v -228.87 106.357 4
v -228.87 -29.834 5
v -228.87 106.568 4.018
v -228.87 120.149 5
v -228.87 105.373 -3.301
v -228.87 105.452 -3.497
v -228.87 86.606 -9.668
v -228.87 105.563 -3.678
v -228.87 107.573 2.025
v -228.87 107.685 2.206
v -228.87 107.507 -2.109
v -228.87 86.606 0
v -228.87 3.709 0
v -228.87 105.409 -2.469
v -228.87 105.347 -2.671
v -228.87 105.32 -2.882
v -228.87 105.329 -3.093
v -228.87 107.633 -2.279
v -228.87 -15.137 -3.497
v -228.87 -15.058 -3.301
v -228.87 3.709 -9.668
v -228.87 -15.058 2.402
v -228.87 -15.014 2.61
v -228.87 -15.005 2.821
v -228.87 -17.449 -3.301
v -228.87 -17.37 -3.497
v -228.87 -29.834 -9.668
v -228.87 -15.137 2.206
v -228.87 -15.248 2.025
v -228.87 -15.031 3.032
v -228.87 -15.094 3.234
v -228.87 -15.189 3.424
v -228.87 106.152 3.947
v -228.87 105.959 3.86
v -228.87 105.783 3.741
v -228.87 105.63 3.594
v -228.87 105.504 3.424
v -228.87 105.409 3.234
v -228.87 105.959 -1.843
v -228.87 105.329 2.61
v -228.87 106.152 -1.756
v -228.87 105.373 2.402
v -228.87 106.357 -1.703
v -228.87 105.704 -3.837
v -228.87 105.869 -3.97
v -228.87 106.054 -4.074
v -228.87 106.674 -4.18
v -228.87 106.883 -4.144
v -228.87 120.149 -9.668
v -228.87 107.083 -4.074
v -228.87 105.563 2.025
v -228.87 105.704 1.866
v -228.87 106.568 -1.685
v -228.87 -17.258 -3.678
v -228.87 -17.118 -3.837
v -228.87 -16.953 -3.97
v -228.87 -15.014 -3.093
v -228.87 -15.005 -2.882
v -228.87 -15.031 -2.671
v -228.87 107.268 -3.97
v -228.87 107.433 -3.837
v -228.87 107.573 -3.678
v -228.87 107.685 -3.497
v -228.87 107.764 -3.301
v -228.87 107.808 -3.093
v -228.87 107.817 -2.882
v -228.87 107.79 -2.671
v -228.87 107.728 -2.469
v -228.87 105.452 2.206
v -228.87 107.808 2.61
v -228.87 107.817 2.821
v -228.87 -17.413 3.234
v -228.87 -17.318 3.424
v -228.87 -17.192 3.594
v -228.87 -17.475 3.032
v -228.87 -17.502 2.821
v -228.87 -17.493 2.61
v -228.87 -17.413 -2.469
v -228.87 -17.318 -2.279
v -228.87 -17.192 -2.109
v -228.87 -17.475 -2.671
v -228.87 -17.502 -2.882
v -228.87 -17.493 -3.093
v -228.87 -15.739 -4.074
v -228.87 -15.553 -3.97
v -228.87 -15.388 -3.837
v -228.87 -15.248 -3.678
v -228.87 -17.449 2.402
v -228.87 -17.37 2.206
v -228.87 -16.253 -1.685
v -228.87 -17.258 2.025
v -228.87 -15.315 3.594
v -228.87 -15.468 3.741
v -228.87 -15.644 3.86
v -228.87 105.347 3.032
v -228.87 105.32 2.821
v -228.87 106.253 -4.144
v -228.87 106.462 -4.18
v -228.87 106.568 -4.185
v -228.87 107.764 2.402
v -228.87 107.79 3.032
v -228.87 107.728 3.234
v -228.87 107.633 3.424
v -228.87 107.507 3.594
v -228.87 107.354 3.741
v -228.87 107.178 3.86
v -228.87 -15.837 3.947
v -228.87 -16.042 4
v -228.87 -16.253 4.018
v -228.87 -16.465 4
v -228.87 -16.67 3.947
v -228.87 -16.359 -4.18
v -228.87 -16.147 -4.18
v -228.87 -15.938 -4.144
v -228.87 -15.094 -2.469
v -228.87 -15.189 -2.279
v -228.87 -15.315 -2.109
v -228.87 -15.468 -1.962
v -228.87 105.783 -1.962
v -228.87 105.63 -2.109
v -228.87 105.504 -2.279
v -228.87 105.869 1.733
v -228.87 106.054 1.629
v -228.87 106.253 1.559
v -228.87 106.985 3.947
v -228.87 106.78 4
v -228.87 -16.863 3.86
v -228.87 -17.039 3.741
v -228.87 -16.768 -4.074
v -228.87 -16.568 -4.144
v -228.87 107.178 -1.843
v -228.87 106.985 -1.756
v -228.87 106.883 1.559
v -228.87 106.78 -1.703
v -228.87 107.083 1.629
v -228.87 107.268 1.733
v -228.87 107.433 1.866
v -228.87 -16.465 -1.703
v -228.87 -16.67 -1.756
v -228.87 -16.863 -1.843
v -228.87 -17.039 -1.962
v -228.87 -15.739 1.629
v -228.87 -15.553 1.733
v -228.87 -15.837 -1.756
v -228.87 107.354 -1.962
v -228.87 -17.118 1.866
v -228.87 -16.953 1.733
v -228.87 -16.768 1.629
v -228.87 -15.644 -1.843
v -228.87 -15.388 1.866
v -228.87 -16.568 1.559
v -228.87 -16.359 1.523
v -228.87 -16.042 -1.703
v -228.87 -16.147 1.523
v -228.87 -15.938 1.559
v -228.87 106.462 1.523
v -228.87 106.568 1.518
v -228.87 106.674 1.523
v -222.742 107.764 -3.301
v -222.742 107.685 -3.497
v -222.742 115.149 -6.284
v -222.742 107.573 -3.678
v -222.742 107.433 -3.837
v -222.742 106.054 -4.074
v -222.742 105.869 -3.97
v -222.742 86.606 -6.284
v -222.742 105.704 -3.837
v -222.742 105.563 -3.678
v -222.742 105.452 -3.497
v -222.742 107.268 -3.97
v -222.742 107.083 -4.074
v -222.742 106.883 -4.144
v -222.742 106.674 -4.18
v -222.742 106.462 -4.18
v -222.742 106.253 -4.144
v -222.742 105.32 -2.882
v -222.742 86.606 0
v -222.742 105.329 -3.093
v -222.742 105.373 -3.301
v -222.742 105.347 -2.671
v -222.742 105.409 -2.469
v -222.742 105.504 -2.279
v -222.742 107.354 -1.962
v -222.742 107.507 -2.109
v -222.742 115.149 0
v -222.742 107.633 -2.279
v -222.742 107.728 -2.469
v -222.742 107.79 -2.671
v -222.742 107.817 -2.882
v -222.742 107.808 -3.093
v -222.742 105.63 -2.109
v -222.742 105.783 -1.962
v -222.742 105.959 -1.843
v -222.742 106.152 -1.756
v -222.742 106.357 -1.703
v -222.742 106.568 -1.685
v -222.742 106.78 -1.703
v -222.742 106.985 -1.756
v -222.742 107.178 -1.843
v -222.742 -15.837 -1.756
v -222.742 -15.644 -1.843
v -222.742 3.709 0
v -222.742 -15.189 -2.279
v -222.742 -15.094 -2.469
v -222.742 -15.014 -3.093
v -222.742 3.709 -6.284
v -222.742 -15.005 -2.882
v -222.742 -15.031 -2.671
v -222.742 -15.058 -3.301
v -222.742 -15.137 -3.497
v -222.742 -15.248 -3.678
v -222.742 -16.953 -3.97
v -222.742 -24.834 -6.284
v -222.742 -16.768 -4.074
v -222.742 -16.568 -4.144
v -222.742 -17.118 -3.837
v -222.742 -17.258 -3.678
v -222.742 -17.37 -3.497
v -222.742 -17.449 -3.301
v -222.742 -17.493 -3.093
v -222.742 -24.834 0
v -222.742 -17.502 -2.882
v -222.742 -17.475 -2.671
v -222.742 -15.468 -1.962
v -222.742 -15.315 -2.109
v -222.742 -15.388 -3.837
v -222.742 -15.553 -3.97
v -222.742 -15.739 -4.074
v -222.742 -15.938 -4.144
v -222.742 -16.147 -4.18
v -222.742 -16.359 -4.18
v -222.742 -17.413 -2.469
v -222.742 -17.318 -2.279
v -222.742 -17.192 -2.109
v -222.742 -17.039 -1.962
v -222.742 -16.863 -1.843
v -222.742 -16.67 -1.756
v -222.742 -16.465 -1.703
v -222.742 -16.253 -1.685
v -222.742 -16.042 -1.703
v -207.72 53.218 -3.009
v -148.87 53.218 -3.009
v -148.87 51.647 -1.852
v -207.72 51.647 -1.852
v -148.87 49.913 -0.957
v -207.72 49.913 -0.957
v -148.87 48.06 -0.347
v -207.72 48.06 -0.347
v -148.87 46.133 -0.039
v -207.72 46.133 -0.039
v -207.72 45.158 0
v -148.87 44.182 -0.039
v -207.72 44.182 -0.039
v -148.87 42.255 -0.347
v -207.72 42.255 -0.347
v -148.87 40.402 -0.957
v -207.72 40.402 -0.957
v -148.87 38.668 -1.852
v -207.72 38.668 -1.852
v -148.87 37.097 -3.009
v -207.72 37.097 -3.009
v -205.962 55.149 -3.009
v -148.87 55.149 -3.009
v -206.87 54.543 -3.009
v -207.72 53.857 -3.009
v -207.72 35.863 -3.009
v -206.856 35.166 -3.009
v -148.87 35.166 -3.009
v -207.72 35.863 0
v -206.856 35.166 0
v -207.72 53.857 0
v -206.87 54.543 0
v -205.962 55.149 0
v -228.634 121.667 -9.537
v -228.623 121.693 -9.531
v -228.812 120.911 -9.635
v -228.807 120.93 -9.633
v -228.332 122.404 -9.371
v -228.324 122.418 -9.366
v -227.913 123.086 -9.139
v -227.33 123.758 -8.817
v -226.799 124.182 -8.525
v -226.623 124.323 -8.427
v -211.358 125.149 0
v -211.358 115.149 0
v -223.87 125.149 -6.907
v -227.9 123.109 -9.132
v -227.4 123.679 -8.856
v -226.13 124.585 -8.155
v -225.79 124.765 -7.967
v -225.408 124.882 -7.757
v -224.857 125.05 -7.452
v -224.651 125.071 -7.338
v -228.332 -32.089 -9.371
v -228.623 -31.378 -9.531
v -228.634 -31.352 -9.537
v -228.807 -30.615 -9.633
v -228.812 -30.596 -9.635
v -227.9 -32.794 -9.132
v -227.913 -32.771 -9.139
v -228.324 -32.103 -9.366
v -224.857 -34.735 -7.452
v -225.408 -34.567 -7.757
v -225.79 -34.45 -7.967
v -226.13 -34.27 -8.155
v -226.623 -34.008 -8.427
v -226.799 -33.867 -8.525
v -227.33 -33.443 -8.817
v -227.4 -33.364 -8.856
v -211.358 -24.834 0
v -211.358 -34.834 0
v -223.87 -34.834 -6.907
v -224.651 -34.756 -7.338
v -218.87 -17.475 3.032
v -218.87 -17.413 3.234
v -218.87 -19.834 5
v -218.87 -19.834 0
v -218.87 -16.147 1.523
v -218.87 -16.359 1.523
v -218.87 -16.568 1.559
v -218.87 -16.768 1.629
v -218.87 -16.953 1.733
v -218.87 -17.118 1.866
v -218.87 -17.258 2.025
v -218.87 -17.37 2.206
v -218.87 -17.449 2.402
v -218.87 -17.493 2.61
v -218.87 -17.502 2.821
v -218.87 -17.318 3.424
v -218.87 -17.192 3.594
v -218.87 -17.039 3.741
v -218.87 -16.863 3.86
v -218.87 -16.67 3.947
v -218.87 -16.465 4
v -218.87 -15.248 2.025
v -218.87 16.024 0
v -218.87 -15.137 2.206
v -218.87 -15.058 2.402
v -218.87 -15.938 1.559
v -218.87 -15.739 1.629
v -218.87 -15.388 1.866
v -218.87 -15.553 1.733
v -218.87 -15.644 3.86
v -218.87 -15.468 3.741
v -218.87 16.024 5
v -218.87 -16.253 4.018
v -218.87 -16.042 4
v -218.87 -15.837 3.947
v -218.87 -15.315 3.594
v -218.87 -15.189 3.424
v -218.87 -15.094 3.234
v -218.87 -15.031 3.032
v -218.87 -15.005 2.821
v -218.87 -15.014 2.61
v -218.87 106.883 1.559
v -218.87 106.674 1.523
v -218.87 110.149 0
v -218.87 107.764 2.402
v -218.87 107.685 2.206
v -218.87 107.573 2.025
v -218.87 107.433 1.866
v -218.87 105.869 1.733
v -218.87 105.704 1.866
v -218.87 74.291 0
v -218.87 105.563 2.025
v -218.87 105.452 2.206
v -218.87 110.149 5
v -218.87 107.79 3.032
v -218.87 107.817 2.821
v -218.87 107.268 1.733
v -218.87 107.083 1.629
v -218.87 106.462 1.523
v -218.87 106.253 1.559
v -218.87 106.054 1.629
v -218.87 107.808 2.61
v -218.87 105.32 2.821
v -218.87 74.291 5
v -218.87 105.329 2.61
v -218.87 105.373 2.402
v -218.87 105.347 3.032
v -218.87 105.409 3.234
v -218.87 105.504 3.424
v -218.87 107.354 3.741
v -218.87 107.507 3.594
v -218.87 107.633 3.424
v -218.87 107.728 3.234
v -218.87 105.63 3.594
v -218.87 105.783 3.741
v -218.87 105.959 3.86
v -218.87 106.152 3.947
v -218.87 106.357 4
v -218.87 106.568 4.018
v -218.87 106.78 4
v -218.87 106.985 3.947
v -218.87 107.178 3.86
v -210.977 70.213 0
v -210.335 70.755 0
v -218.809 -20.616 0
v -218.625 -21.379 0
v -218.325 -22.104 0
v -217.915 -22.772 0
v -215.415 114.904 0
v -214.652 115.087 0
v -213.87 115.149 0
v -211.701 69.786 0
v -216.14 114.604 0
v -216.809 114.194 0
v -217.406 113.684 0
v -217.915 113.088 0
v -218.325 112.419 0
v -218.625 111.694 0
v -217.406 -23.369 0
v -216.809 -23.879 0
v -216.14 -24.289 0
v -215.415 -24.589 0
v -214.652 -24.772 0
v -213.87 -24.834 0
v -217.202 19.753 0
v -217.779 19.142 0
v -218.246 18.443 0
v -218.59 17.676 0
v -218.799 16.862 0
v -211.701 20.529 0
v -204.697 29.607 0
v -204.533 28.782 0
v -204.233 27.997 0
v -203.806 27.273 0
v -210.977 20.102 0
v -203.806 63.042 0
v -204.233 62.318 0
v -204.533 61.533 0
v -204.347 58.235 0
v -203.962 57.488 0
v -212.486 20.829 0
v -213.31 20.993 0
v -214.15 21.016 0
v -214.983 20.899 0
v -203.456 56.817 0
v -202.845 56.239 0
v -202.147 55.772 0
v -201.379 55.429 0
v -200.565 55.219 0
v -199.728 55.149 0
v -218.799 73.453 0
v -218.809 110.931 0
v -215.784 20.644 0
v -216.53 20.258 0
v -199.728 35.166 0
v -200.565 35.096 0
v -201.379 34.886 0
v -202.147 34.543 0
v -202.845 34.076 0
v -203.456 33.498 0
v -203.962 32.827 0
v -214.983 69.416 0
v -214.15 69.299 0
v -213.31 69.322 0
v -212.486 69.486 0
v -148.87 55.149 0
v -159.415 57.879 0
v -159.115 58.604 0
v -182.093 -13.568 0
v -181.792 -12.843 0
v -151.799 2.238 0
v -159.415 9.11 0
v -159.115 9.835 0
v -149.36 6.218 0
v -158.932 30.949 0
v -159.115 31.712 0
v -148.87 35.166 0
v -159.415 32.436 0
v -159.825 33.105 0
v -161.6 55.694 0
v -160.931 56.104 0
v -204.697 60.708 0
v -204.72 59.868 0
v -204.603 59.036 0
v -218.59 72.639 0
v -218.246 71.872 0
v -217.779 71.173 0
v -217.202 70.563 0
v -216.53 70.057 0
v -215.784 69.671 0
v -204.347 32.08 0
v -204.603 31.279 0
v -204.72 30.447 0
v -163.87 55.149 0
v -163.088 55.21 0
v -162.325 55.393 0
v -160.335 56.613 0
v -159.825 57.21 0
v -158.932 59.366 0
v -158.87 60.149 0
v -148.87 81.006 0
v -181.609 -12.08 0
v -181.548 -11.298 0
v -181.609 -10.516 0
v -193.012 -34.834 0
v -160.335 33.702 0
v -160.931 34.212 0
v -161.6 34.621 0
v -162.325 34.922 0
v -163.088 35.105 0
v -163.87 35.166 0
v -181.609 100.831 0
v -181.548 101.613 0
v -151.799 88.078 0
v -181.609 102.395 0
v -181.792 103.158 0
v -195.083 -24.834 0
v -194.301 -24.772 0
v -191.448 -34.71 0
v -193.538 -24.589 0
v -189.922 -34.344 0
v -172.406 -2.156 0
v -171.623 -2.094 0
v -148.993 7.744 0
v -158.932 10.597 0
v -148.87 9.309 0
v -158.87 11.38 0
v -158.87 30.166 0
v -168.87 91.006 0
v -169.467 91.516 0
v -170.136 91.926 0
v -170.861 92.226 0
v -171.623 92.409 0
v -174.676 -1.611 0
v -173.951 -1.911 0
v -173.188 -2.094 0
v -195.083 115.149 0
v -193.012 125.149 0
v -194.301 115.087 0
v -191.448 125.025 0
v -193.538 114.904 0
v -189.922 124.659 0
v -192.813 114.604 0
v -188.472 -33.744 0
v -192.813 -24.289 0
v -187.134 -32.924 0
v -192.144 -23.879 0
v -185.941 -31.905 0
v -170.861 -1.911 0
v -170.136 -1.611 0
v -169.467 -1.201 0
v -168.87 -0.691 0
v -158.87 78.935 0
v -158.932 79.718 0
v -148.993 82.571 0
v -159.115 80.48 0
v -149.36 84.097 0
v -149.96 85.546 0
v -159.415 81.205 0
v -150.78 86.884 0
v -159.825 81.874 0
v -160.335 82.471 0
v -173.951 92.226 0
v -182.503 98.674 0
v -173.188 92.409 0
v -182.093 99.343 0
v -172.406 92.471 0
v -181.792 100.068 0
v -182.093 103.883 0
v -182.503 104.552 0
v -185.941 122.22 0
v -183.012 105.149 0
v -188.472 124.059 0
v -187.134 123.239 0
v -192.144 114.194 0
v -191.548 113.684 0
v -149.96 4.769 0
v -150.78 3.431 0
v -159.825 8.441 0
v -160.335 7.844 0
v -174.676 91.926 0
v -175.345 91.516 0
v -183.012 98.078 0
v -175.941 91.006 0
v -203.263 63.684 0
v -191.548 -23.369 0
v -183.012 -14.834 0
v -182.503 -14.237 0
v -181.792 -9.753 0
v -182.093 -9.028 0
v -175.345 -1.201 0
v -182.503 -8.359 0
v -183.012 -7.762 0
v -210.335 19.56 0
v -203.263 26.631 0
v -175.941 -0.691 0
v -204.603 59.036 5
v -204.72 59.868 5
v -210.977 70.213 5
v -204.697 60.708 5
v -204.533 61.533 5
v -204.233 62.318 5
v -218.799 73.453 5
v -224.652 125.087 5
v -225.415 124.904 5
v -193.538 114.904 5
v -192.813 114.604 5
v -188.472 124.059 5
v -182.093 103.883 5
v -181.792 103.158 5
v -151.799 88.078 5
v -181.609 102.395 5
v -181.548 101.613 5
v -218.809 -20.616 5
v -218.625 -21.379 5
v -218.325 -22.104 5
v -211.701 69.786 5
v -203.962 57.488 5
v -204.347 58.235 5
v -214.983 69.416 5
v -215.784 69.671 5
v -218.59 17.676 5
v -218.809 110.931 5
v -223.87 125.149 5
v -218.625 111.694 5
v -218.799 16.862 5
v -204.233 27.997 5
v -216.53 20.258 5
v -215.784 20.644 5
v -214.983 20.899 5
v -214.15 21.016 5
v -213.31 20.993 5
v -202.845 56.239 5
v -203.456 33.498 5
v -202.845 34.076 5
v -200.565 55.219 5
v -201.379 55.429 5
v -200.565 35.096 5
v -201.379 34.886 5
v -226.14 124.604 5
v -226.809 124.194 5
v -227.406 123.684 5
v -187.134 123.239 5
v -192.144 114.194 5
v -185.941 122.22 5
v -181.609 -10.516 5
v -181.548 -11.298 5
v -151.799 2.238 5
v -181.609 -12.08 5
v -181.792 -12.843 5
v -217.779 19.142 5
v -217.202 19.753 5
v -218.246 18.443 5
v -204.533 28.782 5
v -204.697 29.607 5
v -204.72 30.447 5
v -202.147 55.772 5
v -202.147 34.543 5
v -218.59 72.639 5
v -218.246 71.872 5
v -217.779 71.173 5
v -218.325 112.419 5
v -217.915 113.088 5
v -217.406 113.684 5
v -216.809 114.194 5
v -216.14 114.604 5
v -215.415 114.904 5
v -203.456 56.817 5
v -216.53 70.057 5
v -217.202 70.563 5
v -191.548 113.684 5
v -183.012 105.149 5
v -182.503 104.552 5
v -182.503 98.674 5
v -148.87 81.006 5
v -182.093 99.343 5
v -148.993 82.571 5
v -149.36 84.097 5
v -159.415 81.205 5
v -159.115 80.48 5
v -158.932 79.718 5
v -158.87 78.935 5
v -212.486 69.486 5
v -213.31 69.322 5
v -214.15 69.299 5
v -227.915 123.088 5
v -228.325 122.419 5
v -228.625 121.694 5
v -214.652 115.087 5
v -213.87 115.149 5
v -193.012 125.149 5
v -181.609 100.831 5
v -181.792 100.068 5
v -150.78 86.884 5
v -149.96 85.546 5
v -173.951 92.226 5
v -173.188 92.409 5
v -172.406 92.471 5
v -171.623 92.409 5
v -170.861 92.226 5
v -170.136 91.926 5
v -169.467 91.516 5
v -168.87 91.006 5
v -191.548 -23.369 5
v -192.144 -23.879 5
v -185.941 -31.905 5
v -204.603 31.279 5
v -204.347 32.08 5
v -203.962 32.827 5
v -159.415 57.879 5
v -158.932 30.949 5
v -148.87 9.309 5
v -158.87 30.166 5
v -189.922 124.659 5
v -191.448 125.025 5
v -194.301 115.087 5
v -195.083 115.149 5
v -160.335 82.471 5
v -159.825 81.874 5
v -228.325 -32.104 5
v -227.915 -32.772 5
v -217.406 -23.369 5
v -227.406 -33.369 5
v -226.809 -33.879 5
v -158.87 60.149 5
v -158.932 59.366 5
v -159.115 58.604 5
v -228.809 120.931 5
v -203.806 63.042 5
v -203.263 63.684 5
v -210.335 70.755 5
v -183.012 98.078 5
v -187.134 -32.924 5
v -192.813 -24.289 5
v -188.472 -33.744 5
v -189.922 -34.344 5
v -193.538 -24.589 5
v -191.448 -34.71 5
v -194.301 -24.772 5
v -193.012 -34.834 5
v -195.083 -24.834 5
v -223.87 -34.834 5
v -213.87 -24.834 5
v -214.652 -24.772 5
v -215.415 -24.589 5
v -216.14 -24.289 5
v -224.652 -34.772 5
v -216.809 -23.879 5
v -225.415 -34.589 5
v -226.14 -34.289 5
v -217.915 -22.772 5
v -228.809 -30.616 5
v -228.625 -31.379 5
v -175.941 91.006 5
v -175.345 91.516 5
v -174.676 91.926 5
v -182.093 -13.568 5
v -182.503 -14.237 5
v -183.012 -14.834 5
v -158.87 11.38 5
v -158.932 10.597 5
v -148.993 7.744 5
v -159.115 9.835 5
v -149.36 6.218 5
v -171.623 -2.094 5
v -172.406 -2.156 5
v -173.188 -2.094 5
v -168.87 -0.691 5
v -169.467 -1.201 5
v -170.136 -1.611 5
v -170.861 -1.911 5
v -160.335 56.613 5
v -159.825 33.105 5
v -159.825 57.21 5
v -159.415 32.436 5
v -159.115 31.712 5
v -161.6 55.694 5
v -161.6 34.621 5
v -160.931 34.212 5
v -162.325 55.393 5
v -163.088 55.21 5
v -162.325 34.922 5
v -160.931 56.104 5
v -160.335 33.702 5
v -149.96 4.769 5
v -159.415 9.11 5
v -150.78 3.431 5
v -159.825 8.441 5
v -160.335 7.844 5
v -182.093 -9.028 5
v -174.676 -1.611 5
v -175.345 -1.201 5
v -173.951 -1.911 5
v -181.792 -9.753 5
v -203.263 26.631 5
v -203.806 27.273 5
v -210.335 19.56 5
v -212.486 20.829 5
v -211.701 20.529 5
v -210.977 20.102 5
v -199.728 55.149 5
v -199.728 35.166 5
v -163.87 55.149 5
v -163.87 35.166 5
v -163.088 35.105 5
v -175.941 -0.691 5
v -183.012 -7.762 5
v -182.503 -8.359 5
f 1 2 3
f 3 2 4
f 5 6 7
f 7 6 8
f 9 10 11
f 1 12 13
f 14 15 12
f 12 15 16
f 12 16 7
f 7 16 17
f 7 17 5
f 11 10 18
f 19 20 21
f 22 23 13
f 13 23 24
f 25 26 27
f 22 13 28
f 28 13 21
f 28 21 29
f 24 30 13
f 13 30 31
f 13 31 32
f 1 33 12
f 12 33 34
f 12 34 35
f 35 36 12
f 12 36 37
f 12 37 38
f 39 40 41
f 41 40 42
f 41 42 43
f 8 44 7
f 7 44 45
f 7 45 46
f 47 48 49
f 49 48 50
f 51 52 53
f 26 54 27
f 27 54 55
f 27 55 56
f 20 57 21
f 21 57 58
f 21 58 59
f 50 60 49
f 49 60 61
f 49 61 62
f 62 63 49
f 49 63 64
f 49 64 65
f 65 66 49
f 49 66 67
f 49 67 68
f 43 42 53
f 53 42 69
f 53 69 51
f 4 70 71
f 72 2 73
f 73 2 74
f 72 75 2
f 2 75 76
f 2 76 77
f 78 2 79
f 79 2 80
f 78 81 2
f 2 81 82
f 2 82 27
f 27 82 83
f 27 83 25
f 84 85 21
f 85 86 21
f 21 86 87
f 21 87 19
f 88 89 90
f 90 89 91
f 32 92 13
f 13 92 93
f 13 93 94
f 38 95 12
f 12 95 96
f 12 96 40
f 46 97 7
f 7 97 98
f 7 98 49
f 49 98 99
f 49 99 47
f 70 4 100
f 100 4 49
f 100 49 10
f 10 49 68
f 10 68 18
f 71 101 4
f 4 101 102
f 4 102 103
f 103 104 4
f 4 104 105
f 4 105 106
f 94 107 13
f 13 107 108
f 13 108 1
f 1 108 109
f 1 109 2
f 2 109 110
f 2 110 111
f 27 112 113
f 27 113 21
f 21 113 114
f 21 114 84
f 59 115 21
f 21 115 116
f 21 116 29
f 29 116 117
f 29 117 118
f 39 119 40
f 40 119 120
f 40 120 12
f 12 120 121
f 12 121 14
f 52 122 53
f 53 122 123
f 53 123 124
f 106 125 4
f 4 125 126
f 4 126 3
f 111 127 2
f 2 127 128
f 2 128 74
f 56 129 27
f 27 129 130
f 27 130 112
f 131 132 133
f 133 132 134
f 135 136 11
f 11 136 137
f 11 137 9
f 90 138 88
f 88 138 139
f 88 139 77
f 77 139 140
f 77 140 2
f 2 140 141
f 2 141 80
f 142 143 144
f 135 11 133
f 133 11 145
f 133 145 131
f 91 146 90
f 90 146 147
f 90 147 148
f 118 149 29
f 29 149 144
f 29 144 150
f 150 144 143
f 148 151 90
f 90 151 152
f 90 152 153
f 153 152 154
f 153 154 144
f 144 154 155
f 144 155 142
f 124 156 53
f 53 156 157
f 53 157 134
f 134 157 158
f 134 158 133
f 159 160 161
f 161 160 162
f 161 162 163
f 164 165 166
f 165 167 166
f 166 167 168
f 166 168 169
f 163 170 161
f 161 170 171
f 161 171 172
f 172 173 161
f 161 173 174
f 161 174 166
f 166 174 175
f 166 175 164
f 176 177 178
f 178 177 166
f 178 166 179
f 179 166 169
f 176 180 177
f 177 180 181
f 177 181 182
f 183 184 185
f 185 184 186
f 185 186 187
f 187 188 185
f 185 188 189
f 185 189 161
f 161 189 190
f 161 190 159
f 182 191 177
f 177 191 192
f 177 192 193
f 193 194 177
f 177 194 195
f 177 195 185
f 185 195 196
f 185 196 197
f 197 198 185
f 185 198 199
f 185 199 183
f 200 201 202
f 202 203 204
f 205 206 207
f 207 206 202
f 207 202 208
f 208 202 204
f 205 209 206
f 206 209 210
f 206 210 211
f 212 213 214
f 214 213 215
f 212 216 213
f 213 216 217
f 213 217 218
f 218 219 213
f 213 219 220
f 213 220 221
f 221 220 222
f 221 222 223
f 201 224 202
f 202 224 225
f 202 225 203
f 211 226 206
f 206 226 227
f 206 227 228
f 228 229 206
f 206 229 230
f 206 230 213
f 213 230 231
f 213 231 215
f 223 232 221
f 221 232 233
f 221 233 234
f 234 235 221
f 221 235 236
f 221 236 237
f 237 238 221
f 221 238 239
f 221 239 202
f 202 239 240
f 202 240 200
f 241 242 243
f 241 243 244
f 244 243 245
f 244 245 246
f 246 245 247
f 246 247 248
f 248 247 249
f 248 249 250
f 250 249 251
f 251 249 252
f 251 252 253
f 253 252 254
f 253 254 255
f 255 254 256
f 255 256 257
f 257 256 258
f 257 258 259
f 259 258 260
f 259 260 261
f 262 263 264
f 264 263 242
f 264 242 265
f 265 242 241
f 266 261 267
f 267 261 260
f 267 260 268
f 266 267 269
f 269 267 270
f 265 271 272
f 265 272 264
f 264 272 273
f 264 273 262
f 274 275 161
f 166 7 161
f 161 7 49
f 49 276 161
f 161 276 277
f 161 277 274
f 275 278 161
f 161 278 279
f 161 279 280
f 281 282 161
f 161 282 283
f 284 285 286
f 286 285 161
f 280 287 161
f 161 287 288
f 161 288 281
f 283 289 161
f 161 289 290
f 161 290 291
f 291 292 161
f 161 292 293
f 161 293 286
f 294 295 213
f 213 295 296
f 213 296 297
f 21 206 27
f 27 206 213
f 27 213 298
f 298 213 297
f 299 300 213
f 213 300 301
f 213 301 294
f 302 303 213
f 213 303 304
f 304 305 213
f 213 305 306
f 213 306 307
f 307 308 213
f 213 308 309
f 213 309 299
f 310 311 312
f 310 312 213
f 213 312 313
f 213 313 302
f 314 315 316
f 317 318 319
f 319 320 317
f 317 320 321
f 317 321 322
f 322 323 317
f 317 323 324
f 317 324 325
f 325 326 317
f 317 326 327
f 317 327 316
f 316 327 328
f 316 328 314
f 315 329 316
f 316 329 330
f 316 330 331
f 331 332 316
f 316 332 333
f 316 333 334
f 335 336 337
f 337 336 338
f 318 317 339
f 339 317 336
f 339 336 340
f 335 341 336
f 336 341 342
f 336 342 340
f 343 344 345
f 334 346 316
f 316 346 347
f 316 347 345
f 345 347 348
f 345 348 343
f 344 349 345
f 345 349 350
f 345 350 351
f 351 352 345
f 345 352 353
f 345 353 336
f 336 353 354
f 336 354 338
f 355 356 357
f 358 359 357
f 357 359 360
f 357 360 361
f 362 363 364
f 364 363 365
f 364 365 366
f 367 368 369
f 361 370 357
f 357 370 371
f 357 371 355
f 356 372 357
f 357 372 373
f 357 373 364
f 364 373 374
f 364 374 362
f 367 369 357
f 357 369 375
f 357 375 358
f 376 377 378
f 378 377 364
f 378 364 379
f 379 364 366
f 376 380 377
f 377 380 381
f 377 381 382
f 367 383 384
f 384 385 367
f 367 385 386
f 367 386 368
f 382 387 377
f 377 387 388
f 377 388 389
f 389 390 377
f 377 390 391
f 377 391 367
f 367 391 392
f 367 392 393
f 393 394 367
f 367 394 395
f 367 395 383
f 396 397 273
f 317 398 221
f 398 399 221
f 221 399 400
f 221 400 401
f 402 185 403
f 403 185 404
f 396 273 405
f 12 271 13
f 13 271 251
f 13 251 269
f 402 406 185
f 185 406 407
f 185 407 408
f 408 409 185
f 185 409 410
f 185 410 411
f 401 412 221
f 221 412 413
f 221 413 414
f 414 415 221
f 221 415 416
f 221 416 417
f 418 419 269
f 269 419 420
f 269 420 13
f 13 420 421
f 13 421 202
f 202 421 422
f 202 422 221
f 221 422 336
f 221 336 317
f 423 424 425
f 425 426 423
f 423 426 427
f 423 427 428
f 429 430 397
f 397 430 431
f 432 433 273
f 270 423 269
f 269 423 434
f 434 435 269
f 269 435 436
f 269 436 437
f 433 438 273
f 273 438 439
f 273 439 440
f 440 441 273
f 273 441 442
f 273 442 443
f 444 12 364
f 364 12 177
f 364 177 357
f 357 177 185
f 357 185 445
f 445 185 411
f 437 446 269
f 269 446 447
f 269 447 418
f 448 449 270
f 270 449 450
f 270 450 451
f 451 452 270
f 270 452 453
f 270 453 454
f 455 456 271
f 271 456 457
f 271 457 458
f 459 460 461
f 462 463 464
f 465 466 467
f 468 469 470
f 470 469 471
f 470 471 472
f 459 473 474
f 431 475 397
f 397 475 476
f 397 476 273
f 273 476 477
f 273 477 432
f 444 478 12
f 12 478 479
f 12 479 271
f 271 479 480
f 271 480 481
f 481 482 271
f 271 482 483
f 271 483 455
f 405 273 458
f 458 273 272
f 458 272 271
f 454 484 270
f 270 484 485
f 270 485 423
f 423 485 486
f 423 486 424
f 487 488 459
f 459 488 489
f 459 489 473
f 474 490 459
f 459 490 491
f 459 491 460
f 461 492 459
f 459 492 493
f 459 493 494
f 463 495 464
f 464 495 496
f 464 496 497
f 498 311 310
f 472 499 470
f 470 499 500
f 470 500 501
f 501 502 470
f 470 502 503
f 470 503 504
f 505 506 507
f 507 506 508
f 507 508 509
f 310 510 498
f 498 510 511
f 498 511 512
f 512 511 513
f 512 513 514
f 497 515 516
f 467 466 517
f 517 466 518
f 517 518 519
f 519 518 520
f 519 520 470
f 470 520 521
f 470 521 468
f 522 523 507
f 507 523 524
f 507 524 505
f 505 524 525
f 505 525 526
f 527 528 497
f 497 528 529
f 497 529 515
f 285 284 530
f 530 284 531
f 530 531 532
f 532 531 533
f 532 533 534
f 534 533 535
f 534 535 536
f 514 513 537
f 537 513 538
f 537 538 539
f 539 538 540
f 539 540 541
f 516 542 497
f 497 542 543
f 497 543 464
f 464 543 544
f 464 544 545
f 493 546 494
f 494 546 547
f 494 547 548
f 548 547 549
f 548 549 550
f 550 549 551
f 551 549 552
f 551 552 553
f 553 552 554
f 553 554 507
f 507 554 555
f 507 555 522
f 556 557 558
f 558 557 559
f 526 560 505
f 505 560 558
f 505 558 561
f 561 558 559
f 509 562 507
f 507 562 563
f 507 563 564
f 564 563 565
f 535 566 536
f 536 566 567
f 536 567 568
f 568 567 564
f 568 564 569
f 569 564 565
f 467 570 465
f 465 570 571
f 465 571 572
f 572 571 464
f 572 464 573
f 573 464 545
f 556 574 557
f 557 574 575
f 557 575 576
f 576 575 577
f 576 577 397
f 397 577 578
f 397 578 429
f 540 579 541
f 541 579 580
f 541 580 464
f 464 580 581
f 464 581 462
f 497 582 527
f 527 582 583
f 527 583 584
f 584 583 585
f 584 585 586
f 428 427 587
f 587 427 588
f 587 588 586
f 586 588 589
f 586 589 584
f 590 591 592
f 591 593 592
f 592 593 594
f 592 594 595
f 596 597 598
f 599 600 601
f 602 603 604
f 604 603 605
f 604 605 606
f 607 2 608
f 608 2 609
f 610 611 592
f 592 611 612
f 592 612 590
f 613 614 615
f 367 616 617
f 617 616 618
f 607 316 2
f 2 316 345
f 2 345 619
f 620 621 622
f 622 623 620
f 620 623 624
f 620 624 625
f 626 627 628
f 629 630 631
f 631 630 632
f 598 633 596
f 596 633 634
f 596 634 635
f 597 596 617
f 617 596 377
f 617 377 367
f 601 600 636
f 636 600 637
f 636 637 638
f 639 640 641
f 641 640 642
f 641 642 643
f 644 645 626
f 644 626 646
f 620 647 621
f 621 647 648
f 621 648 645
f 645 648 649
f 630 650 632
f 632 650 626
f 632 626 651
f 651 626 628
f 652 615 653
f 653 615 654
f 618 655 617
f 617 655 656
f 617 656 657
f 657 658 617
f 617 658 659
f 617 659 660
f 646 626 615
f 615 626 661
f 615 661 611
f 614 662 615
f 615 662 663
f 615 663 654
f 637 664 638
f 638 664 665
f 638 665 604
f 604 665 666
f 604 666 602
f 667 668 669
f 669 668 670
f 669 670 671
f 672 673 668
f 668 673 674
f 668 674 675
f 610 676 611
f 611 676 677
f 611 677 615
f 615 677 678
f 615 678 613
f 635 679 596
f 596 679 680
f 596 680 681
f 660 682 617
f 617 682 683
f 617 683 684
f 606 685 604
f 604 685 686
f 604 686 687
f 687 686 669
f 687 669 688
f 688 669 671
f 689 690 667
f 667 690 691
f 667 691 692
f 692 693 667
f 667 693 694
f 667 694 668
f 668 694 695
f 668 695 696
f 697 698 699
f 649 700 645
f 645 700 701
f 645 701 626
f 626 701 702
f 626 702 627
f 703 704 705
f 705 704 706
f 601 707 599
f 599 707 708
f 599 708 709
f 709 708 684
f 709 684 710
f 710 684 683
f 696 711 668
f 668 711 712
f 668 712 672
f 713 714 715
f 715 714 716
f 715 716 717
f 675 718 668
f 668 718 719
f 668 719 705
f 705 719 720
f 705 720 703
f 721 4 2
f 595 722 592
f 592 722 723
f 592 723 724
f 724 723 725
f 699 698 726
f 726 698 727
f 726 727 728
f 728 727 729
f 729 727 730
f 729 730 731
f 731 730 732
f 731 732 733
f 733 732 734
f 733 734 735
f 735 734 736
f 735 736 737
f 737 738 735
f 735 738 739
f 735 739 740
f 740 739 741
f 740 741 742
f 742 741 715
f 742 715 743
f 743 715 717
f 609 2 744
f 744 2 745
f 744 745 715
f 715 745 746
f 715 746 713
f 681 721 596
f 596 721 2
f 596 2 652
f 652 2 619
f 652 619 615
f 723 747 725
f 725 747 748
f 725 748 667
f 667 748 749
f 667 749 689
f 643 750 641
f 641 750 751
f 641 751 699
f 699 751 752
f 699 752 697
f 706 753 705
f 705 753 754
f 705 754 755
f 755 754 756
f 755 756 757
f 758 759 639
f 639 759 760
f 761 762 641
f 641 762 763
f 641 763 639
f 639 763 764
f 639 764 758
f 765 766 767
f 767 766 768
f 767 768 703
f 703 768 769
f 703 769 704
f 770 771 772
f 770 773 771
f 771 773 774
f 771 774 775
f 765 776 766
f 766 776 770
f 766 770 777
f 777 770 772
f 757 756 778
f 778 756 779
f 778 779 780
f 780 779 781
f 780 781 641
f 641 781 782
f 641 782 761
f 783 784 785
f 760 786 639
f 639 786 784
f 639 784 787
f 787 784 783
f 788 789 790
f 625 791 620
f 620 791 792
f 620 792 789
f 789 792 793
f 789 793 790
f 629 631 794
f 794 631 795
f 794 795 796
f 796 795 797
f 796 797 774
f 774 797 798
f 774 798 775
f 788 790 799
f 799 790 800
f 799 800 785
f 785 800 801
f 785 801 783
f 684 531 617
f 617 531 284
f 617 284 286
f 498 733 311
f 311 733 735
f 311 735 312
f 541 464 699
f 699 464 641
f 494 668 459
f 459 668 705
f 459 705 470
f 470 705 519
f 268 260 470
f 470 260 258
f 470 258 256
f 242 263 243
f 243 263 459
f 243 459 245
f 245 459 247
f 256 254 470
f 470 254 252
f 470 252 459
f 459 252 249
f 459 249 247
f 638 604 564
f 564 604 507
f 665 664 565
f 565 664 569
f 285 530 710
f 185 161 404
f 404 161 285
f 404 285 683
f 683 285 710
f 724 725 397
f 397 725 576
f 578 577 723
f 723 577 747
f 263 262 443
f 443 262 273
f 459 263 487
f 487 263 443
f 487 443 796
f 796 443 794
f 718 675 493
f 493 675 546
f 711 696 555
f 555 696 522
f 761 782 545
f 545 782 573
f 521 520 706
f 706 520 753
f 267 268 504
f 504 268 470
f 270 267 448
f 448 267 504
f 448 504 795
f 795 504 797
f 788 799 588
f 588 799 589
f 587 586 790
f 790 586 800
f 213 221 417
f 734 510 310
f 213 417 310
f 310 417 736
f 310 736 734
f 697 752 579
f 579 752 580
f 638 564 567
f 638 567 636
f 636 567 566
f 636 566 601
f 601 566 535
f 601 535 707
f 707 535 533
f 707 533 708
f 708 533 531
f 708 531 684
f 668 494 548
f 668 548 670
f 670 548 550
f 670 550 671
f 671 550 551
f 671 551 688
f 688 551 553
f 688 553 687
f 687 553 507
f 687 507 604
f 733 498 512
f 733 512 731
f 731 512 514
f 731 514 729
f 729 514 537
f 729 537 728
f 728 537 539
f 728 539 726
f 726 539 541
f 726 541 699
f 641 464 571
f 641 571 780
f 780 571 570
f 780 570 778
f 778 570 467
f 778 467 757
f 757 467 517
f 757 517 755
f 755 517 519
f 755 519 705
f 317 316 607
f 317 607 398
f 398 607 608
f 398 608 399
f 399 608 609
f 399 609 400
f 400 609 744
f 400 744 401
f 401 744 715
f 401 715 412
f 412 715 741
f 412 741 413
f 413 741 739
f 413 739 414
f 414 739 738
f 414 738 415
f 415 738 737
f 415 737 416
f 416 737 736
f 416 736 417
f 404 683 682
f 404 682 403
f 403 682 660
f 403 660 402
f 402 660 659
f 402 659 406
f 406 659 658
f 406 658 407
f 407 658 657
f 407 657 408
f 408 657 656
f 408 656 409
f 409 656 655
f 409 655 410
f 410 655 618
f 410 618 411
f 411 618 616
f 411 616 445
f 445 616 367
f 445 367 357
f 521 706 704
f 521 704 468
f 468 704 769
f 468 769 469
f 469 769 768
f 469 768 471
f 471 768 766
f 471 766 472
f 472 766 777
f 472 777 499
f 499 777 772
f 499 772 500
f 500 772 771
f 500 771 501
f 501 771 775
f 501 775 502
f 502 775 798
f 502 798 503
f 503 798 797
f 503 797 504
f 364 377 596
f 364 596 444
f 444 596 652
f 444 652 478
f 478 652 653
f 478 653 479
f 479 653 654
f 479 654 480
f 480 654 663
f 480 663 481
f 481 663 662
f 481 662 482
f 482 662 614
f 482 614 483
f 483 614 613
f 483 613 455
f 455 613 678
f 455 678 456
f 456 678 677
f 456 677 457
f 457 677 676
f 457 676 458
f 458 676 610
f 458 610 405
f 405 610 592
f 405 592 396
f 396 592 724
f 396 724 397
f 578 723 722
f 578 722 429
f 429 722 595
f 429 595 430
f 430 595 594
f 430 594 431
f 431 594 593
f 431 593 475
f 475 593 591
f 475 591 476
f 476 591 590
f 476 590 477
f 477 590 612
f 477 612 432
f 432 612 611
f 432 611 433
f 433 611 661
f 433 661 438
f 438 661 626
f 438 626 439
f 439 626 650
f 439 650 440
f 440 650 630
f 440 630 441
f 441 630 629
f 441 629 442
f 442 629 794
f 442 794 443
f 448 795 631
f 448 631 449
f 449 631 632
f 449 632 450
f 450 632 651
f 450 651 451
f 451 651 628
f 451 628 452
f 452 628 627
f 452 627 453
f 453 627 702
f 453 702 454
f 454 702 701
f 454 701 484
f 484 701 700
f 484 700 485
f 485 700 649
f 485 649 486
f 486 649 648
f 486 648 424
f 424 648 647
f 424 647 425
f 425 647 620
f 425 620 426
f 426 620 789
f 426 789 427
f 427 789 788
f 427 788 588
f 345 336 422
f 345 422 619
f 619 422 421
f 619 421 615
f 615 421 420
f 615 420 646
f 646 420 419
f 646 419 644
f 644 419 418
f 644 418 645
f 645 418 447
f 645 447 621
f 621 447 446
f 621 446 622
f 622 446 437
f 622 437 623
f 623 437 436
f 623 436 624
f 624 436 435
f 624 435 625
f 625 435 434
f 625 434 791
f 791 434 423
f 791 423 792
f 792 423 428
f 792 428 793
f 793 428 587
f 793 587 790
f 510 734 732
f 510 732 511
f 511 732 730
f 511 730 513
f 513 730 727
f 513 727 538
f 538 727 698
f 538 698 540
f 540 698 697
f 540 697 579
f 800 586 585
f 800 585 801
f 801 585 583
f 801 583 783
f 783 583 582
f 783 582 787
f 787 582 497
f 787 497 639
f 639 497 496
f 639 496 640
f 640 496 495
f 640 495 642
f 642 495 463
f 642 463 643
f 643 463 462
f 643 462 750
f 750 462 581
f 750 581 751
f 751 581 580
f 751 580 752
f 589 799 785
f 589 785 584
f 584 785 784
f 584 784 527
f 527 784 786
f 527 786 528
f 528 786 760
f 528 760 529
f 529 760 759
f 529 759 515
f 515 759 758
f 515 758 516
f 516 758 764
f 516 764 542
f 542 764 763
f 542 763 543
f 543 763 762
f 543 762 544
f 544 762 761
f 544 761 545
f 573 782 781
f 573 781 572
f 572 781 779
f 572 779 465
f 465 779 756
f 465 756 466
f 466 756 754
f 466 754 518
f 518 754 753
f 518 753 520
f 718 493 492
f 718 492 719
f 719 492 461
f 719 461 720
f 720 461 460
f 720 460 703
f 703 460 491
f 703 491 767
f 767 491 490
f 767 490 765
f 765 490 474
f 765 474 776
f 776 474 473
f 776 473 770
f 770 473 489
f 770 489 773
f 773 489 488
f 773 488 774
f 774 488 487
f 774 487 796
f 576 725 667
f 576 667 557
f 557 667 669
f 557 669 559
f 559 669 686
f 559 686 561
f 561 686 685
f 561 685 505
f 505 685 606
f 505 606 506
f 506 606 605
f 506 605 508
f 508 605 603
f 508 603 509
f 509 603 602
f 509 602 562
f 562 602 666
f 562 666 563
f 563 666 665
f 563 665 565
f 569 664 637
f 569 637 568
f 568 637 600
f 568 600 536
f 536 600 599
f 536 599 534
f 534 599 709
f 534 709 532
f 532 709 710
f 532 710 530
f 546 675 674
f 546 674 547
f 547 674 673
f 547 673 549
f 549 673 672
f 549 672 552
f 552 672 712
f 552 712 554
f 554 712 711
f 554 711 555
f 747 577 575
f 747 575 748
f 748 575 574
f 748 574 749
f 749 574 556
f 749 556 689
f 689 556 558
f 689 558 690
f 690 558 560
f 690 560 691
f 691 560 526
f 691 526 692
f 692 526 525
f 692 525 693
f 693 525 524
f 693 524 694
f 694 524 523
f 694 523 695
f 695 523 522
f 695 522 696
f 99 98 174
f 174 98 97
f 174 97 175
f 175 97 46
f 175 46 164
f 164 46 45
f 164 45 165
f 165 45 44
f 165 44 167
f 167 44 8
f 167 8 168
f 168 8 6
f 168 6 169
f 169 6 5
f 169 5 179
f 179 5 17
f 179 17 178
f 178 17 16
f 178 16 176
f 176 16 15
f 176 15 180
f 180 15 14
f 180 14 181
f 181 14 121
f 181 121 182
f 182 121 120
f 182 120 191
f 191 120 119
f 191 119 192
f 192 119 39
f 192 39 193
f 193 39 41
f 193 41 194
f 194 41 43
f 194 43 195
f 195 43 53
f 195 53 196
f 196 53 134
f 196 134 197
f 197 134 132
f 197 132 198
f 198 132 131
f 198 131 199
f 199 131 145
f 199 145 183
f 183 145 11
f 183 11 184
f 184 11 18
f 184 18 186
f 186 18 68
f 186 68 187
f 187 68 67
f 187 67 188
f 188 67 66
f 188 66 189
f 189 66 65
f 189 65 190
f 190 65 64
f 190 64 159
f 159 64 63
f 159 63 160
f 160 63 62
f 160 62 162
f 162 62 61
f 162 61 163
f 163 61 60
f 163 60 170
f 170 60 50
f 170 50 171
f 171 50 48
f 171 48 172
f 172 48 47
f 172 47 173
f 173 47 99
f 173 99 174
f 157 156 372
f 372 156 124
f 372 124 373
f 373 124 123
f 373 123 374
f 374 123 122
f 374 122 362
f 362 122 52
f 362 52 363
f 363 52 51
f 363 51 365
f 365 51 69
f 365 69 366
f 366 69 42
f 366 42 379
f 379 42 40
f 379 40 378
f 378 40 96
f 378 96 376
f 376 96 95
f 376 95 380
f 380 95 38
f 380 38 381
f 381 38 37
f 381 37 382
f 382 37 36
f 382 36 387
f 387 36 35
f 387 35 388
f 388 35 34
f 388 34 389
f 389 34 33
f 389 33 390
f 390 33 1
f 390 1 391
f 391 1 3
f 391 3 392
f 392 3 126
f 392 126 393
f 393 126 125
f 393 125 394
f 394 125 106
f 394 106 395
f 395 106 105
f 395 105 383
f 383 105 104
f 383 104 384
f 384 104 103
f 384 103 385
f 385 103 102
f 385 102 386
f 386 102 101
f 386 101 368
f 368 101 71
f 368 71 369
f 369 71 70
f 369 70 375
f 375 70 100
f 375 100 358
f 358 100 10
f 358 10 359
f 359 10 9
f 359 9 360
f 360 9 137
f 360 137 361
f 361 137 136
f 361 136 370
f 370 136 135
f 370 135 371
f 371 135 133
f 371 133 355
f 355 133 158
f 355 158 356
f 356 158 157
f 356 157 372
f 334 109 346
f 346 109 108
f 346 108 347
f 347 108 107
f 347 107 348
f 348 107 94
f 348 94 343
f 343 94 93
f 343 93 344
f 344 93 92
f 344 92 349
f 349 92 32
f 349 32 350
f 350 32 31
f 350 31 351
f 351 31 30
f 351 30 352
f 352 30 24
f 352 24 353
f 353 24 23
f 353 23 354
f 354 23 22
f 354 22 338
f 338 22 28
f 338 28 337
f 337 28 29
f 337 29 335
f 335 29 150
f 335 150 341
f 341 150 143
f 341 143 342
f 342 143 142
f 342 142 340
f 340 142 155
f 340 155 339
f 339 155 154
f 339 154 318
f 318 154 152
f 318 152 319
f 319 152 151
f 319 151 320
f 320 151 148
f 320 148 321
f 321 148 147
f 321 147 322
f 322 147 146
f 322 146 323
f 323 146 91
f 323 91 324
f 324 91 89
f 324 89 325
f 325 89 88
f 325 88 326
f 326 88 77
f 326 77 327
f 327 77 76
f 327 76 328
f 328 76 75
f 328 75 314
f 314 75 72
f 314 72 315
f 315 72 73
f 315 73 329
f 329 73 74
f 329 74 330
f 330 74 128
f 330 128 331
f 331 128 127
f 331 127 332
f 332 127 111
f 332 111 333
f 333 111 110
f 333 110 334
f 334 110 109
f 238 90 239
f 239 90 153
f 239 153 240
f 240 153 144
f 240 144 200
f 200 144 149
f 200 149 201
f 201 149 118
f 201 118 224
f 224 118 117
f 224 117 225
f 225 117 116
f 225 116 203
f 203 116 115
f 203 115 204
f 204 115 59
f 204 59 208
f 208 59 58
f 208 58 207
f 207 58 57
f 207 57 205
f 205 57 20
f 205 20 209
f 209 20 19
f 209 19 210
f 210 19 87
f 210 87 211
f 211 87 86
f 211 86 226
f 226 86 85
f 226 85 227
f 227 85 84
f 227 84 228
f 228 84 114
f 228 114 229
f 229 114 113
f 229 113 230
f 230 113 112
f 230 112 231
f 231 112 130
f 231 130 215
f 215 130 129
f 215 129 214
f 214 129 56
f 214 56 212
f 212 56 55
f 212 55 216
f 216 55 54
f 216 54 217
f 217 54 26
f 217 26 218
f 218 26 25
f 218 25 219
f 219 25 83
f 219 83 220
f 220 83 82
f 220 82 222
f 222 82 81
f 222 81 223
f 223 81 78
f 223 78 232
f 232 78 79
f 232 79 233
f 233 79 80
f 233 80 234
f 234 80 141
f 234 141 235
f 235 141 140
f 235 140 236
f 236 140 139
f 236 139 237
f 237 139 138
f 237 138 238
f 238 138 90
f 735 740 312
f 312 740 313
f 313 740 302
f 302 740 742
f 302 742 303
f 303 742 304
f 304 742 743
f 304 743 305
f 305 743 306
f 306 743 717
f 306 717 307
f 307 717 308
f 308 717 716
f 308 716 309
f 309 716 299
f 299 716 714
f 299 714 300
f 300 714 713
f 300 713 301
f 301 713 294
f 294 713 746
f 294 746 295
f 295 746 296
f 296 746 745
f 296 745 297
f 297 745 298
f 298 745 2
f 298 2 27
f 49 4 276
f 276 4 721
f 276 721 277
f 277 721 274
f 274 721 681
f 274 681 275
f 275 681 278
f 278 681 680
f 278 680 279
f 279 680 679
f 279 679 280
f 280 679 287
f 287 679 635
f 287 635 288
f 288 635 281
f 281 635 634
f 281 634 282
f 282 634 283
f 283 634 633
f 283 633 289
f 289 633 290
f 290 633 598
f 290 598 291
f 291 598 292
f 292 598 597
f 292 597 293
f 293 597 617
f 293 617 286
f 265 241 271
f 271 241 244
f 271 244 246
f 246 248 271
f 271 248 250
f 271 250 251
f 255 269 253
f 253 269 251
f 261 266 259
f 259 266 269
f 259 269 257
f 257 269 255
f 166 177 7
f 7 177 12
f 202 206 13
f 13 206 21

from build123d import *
from build123d.topology import SkipClean

# Parameters (mm, degrees)
RESSALTO_EXTRUS_O2_DEPTH   = 5
CORTE_EXTRUS_O1_DEPTH      = 5
FILETE1_R                  = 10
FILETE2_R                  = 5
ESBO_O7_W                  = 62.928932188
ESBO_O7_H                  = 19.982162149
RESSALTO_EXTRUS_O5_DEPTH   = 5
CORTE_EXTRUS_O2_DEPTH      = 66
FILETE3_R                  = 5
CORTE_EXTRUS_O5_DEPTH      = 35
RESSALTO_EXTRUS_O6_DEPTH   = 159.982162
ESBO_O12_W                 = 11.383352407
ESBO_O12_H                 = 139.982162149
CORTE_EXTRUS_O6_DEPTH      = 10
CORTE_EXTRUS_O7_DEPTH      = 10
CORTE_EXTRUS_O7_DEPTH_BACK = 146.645655307
ESBO_O14_R                 = 1.25
FILETE4_R                  = 5
ESBO_O16_W                 = 30.044355049
ESBO_O16_H                 = 82.897559044
CORTE_EXTRUS_O8_DEPTH      = 262.030945505


with BuildPart() as part:
    # Esboço1 → Ressalto-extrusão2 (new body)
    with BuildSketch(Plane.XY):
        Polygon((-148.870088073, 85.148606513), (-188.870088073, 125.148606513), (-228.870088073, 125.148606513), (-228.870088073, -34.833555636), (-188.870088073, -34.833555636), (-148.870088073, 5.166444364), align=None)
    extrude(amount=RESSALTO_EXTRUS_O2_DEPTH)

    # Esboço4 → Corte-extrusão1 (cut)
    with BuildSketch(Plane(origin=(0, 0, 0), x_dir=(-1, 0, 0), z_dir=(0, 0, -1))):
        Polygon((179.47668979, 101.613072607), (218.870088073, 62.219674325), (218.870088073, 115.148606513), (193.012223696, 115.148606513), align=None)
        Polygon((158.870088073, 55.148606513), (211.799020261, 55.148606513), (172.405621979, 94.542004796), (158.870088073, 81.00647089), align=None)
        Polygon((172.405621979, -4.226953918), (211.799020261, 35.166444364), (158.870088073, 35.166444364), (158.870088073, 9.308579988), align=None)
        Polygon((218.870088073, -24.833555636), (218.870088073, 28.095376552), (179.47668979, -11.29802173), (193.012223696, -24.833555636), align=None)
    extrude(amount=-CORTE_EXTRUS_O1_DEPTH, mode=Mode.SUBTRACT)

    # Filete1
    filete1_edges = [part.edges().sort_by_distance(p)[0] for p in [
        (-188.870088073, 125.148606513, 2.5),
        (-148.870088073, 85.148606513, 2.5),
        (-148.870088073, 5.166444364, 2.5),
        (-188.870088073, -34.833555636, 2.5),
    ]]
    fillet(filete1_edges, radius=FILETE1_R)

    # Filete2
    filete2_edges = [part.edges().sort_by_distance(p)[0] for p in [
        (-218.870088073, 115.148606513, 2.5),
        (-218.870088073, -24.833555636, 2.5),
    ]]
    fillet(filete2_edges, radius=FILETE2_R)

    # Esboço7 → Ressalto-extrusão5 (add)
    with BuildSketch(Plane(origin=(0, 0, 0), x_dir=(-1, 0, 0), z_dir=(0, 0, -1))):
        with Locations((180.334554167, 45.157525439)):
            Rectangle(ESBO_O7_W, ESBO_O7_H)
    extrude(amount=RESSALTO_EXTRUS_O5_DEPTH)

    # Esboço8 → Corte-extrusão2 (cut)
    with BuildSketch(Plane(origin=(-148.870088073, 0, 0), x_dir=(0, 0, -1), z_dir=(1, 0, 0))):
        with BuildLine():
            Line((3.009284908, 37.096966334), (3.009284908, 53.218084544))
            ThreePointArc((3.009284908, 53.218084544), (0, 45.157525439), (3.009284908, 37.096966334))
        make_face()
        with BuildLine():
            Line((5, 55.148606513), (3.009284908, 55.148606513))
            Line((3.009284908, 55.148606513), (3.009284908, 53.218084544))
            ThreePointArc((3.009284908, 53.218084544), (3.95384052, 54.192547406), (5, 55.057020375))
            Line((5, 55.057020375), (5, 55.148606513))
        make_face()
        with BuildLine():
            ThreePointArc((5, 55.057020375), (3.95384052, 54.192547406), (3.009284908, 53.218084544))
            Line((3.009284908, 53.218084544), (3.009284908, 37.096966334))
            ThreePointArc((3.009284908, 37.096966334), (3.95384052, 36.122503472), (5, 35.258030502))
            Line((5, 35.258030502), (5, 55.057020375))
        make_face()
        with BuildLine():
            ThreePointArc((5, 35.258030502), (3.95384052, 36.122503472), (3.009284908, 37.096966334))
            Line((3.009284908, 37.096966334), (3.009284908, 35.166444364))
            Line((3.009284908, 35.166444364), (5, 35.166444364))
            Line((5, 35.166444364), (5, 35.258030502))
        make_face()
    extrude(amount=-CORTE_EXTRUS_O2_DEPTH, mode=Mode.SUBTRACT)

    # Filete3
    filete3_edges = [part.edges().sort_by_distance(p)[0] for p in [
        (-218.870088073, 62.219674325, 2.5),
        (-211.799020261, 55.148606513, 2.5),
        (-211.799020261, 35.166444364, 2.5),
        (-218.870088073, 28.095376552, 2.5),
        (-193.012223696, -24.833555636, 2.5),
        (-179.47668979, -11.29802173, 2.5),
        (-172.405621979, -4.226953918, 2.5),
        (-158.870088073, 9.308579988, 2.5),
        (-158.870088073, 55.148606513, 2.5),
        (-179.47668979, 101.613072607, 2.5),
        (-193.012223696, 115.148606513, 2.5),
        (-158.870088073, 81.00647089, 2.5),
        (-172.405621979, 94.542004796, 2.5),
        (-158.870088073, 35.166444364, 2.5),
    ]]
    fillet(filete3_edges, radius=FILETE3_R)

    # Esboço9 → Corte-extrusão5 (cut)
    # profile 1 of 2: a face of its own
    with BuildSketch(Plane(origin=(0, 0, 0), x_dir=(-1, 0, 0), z_dir=(0, 0, -1))):
        with BuildLine():
            Line((148.870088073, 62.717943557), (158.870088073, 61.569782302))
            Line((158.870088073, 61.569782302), (158.870088073, 78.935403078))
            ThreePointArc((158.870088073, 78.935403078), (159.25069041, 80.84882024), (160.334554167, 82.470936984))
            Line((160.334554167, 82.470936984), (168.870088073, 91.00647089))
            ThreePointArc((168.870088073, 91.00647089), (172.405621979, 92.470936984), (175.941155885, 91.00647089))
            Line((175.941155885, 91.00647089), (203.263486355, 63.684140419))
            ThreePointArc((203.263486355, 63.684140419), (204.725855133, 60.003800568), (203.052854861, 56.414302837))
            ThreePointArc((203.052854861, 56.414302837), (204.549488944, 55.877906361), (205.962201401, 55.148606513))
            Line((205.962201401, 55.148606513), (211.799020261, 55.148606513))
            Line((211.799020261, 55.148606513), (211.799020261, 45.157525439))
            Line((211.799020261, 45.157525439), (211.799020261, 35.166444364))
            Line((211.799020261, 35.166444364), (206.85563775, 35.166444364))
            ThreePointArc((206.85563775, 35.166444364), (205.247649008, 34.173056461), (203.503772873, 33.44412344))
            ThreePointArc((203.503772873, 33.44412344), (204.724845816, 29.990215306), (203.263486355, 26.630910458))
            Line((203.263486355, 26.630910458), (175.941155885, -0.691420012))
            ThreePointArc((175.941155885, -0.691420012), (172.405621979, -2.155886106), (168.870088073, -0.691420012))
            Line((168.870088073, -0.691420012), (160.334554167, 7.844113894))
            ThreePointArc((160.334554167, 7.844113894), (159.25069041, 9.466230638), (158.870088073, 11.3796478))
            Line((158.870088073, 11.3796478), (158.870088073, 26.462519889))
            Line((158.870088073, 26.462519889), (148.870088073, 24.901543221))
            Line((148.870088073, 24.901543221), (148.870088073, 9.308579988))
            ThreePointArc((148.870088073, 9.308579988), (149.631292748, 5.481745664), (151.799020261, 2.237512176))
            Line((151.799020261, 2.237512176), (185.941155885, -31.904623448))
            ThreePointArc((185.941155885, -31.904623448), (189.185389373, -34.072350961), (193.012223696, -34.833555636))
            Line((193.012223696, -34.833555636), (228.870088073, -34.833555636))
            Line((228.870088073, -34.833555636), (228.870088073, 125.148606513))
            Line((228.870088073, 125.148606513), (193.012223696, 125.148606513))
            ThreePointArc((193.012223696, 125.148606513), (189.185389373, 124.387401839), (185.941155885, 122.219674325))
            Line((185.941155885, 122.219674325), (151.799020261, 88.077538702))
            ThreePointArc((151.799020261, 88.077538702), (149.631292748, 84.833305213), (148.870088073, 81.00647089))
            Line((148.870088073, 81.00647089), (148.870088073, 62.717943557))
        make_face()
        with BuildLine():
            ThreePointArc((195.083291508, -24.833555636), (193.169874346, -24.452953298), (191.547757602, -23.369089542))
            Line((191.547757602, -23.369089542), (183.012223696, -14.833555636))
            ThreePointArc((183.012223696, -14.833555636), (181.547757602, -11.29802173), (183.012223696, -7.762487824))
            Line((183.012223696, -7.762487824), (210.334554167, 19.559842647))
            ThreePointArc((210.334554167, 19.559842647), (215.783505235, 20.643706403), (218.870088073, 16.024308741))
            Line((218.870088073, 16.024308741), (218.870088073, -19.833555636))
            ThreePointArc((218.870088073, -19.833555636), (217.405621979, -23.369089542), (213.870088073, -24.833555636))
            Line((213.870088073, -24.833555636), (195.083291508, -24.833555636))
        make_face(mode=Mode.SUBTRACT)
        with BuildLine():
            ThreePointArc((218.870088073, 74.290742137), (215.783505235, 69.671344475), (210.334554167, 70.755208231))
            Line((210.334554167, 70.755208231), (183.012223696, 98.077538702))
            ThreePointArc((183.012223696, 98.077538702), (181.547757602, 101.613072607), (183.012223696, 105.148606513))
            Line((183.012223696, 105.148606513), (191.547757602, 113.684140419))
            ThreePointArc((191.547757602, 113.684140419), (193.169874346, 114.768004176), (195.083291508, 115.148606513))
            Line((195.083291508, 115.148606513), (213.870088073, 115.148606513))
            ThreePointArc((213.870088073, 115.148606513), (217.405621979, 113.684140419), (218.870088073, 110.148606513))
            Line((218.870088073, 110.148606513), (218.870088073, 74.290742137))
        make_face(mode=Mode.SUBTRACT)
    # profile 2 of 2: a face of its own
    with BuildSketch(Plane(origin=(0, 0, 0), x_dir=(-1, 0, 0), z_dir=(0, 0, -1))):
        with BuildLine():
            Line((211.799020261, 55.148606513), (205.962201401, 55.148606513))
            ThreePointArc((205.962201401, 55.148606513), (210.218898447, 50.767748707), (211.771557204, 44.860072713))
            ThreePointArc((211.771557204, 44.860072713), (210.472334539, 39.425629442), (206.85563775, 35.166444364))
            Line((206.85563775, 35.166444364), (211.799020261, 35.166444364))
            Line((211.799020261, 35.166444364), (211.799020261, 45.157525439))
            Line((211.799020261, 45.157525439), (211.799020261, 55.148606513))
        make_face()
    extrude(amount=CORTE_EXTRUS_O5_DEPTH, mode=Mode.SUBTRACT)

    # Esboço10 → Ressalto-extrusão6 (add, through all)
    with SkipClean():  # the faces are left unmerged after this step: merging them gives an invalid solid
        with BuildSketch(Plane.XZ.offset(34.833555636)):
            Polygon((-211.358378387, 0), (-228.870088073, 0), (-228.870088073, -9.667656613), align=None)
        extrude(amount=-RESSALTO_EXTRUS_O6_DEPTH)

    # Esboço12 → Corte-extrusão6 (cut)
    with SkipClean():  # the faces are left unmerged after this step: merging them gives an invalid solid
        with BuildSketch(Plane.XY):
            with Locations((-217.05005459, 45.157525439)):
                Rectangle(ESBO_O12_W, ESBO_O12_H)
        extrude(amount=-CORTE_EXTRUS_O6_DEPTH, mode=Mode.SUBTRACT)

    # Esboço14 → Corte-extrusão7 (cut, two sides: drawn at the far end of the back side and taken through both)
    with SkipClean():  # the faces are left unmerged after this step: merging them gives an invalid solid
        with BuildSketch(Plane(origin=(-222.741730794, 0, 0), x_dir=(0, 0, -1), z_dir=(1, 0, 0)).offset(-CORTE_EXTRUS_O7_DEPTH_BACK)):
            with Locations(Location((2.934607414, 106.56846675, 0), (0, 0, 180))):
                Circle(ESBO_O14_R)
            with Locations(Location((-2.768365458, 106.56846675, 0), (0, 0, 180))):
                Circle(ESBO_O14_R)
            with Locations(Location((-2.768365458, -16.253415872, 0), (0, 0, 180))):
                Circle(ESBO_O14_R)
            with Locations(Location((2.934607414, -16.253415872, 0), (0, 0, 180))):
                Circle(ESBO_O14_R)
        extrude(amount=CORTE_EXTRUS_O7_DEPTH + CORTE_EXTRUS_O7_DEPTH_BACK, mode=Mode.SUBTRACT)

    # Filete4
    filete4_edges = [part.edges().sort_by_distance(p)[0] for p in [
        (-228.870088073, -34.833555636, -4.833828306),
        (-228.870088073, 125.148606364, -4.833828306),
    ]]
    fillet(filete4_edges, radius=FILETE4_R)

    # Esboço16 → Corte-extrusão8 (cut, through all)
    with SkipClean():  # the faces are left unmerged after this step: merging them gives an invalid solid
        with BuildSketch(Plane(origin=(0, 0, 0), x_dir=(-1, 0, 0), z_dir=(0, 0, -1))):
            with Locations((222.741730795, 45.157525439)):
                Rectangle(ESBO_O16_W, ESBO_O16_H)
        extrude(amount=CORTE_EXTRUS_O8_DEPTH, mode=Mode.SUBTRACT)


solid = part.part
